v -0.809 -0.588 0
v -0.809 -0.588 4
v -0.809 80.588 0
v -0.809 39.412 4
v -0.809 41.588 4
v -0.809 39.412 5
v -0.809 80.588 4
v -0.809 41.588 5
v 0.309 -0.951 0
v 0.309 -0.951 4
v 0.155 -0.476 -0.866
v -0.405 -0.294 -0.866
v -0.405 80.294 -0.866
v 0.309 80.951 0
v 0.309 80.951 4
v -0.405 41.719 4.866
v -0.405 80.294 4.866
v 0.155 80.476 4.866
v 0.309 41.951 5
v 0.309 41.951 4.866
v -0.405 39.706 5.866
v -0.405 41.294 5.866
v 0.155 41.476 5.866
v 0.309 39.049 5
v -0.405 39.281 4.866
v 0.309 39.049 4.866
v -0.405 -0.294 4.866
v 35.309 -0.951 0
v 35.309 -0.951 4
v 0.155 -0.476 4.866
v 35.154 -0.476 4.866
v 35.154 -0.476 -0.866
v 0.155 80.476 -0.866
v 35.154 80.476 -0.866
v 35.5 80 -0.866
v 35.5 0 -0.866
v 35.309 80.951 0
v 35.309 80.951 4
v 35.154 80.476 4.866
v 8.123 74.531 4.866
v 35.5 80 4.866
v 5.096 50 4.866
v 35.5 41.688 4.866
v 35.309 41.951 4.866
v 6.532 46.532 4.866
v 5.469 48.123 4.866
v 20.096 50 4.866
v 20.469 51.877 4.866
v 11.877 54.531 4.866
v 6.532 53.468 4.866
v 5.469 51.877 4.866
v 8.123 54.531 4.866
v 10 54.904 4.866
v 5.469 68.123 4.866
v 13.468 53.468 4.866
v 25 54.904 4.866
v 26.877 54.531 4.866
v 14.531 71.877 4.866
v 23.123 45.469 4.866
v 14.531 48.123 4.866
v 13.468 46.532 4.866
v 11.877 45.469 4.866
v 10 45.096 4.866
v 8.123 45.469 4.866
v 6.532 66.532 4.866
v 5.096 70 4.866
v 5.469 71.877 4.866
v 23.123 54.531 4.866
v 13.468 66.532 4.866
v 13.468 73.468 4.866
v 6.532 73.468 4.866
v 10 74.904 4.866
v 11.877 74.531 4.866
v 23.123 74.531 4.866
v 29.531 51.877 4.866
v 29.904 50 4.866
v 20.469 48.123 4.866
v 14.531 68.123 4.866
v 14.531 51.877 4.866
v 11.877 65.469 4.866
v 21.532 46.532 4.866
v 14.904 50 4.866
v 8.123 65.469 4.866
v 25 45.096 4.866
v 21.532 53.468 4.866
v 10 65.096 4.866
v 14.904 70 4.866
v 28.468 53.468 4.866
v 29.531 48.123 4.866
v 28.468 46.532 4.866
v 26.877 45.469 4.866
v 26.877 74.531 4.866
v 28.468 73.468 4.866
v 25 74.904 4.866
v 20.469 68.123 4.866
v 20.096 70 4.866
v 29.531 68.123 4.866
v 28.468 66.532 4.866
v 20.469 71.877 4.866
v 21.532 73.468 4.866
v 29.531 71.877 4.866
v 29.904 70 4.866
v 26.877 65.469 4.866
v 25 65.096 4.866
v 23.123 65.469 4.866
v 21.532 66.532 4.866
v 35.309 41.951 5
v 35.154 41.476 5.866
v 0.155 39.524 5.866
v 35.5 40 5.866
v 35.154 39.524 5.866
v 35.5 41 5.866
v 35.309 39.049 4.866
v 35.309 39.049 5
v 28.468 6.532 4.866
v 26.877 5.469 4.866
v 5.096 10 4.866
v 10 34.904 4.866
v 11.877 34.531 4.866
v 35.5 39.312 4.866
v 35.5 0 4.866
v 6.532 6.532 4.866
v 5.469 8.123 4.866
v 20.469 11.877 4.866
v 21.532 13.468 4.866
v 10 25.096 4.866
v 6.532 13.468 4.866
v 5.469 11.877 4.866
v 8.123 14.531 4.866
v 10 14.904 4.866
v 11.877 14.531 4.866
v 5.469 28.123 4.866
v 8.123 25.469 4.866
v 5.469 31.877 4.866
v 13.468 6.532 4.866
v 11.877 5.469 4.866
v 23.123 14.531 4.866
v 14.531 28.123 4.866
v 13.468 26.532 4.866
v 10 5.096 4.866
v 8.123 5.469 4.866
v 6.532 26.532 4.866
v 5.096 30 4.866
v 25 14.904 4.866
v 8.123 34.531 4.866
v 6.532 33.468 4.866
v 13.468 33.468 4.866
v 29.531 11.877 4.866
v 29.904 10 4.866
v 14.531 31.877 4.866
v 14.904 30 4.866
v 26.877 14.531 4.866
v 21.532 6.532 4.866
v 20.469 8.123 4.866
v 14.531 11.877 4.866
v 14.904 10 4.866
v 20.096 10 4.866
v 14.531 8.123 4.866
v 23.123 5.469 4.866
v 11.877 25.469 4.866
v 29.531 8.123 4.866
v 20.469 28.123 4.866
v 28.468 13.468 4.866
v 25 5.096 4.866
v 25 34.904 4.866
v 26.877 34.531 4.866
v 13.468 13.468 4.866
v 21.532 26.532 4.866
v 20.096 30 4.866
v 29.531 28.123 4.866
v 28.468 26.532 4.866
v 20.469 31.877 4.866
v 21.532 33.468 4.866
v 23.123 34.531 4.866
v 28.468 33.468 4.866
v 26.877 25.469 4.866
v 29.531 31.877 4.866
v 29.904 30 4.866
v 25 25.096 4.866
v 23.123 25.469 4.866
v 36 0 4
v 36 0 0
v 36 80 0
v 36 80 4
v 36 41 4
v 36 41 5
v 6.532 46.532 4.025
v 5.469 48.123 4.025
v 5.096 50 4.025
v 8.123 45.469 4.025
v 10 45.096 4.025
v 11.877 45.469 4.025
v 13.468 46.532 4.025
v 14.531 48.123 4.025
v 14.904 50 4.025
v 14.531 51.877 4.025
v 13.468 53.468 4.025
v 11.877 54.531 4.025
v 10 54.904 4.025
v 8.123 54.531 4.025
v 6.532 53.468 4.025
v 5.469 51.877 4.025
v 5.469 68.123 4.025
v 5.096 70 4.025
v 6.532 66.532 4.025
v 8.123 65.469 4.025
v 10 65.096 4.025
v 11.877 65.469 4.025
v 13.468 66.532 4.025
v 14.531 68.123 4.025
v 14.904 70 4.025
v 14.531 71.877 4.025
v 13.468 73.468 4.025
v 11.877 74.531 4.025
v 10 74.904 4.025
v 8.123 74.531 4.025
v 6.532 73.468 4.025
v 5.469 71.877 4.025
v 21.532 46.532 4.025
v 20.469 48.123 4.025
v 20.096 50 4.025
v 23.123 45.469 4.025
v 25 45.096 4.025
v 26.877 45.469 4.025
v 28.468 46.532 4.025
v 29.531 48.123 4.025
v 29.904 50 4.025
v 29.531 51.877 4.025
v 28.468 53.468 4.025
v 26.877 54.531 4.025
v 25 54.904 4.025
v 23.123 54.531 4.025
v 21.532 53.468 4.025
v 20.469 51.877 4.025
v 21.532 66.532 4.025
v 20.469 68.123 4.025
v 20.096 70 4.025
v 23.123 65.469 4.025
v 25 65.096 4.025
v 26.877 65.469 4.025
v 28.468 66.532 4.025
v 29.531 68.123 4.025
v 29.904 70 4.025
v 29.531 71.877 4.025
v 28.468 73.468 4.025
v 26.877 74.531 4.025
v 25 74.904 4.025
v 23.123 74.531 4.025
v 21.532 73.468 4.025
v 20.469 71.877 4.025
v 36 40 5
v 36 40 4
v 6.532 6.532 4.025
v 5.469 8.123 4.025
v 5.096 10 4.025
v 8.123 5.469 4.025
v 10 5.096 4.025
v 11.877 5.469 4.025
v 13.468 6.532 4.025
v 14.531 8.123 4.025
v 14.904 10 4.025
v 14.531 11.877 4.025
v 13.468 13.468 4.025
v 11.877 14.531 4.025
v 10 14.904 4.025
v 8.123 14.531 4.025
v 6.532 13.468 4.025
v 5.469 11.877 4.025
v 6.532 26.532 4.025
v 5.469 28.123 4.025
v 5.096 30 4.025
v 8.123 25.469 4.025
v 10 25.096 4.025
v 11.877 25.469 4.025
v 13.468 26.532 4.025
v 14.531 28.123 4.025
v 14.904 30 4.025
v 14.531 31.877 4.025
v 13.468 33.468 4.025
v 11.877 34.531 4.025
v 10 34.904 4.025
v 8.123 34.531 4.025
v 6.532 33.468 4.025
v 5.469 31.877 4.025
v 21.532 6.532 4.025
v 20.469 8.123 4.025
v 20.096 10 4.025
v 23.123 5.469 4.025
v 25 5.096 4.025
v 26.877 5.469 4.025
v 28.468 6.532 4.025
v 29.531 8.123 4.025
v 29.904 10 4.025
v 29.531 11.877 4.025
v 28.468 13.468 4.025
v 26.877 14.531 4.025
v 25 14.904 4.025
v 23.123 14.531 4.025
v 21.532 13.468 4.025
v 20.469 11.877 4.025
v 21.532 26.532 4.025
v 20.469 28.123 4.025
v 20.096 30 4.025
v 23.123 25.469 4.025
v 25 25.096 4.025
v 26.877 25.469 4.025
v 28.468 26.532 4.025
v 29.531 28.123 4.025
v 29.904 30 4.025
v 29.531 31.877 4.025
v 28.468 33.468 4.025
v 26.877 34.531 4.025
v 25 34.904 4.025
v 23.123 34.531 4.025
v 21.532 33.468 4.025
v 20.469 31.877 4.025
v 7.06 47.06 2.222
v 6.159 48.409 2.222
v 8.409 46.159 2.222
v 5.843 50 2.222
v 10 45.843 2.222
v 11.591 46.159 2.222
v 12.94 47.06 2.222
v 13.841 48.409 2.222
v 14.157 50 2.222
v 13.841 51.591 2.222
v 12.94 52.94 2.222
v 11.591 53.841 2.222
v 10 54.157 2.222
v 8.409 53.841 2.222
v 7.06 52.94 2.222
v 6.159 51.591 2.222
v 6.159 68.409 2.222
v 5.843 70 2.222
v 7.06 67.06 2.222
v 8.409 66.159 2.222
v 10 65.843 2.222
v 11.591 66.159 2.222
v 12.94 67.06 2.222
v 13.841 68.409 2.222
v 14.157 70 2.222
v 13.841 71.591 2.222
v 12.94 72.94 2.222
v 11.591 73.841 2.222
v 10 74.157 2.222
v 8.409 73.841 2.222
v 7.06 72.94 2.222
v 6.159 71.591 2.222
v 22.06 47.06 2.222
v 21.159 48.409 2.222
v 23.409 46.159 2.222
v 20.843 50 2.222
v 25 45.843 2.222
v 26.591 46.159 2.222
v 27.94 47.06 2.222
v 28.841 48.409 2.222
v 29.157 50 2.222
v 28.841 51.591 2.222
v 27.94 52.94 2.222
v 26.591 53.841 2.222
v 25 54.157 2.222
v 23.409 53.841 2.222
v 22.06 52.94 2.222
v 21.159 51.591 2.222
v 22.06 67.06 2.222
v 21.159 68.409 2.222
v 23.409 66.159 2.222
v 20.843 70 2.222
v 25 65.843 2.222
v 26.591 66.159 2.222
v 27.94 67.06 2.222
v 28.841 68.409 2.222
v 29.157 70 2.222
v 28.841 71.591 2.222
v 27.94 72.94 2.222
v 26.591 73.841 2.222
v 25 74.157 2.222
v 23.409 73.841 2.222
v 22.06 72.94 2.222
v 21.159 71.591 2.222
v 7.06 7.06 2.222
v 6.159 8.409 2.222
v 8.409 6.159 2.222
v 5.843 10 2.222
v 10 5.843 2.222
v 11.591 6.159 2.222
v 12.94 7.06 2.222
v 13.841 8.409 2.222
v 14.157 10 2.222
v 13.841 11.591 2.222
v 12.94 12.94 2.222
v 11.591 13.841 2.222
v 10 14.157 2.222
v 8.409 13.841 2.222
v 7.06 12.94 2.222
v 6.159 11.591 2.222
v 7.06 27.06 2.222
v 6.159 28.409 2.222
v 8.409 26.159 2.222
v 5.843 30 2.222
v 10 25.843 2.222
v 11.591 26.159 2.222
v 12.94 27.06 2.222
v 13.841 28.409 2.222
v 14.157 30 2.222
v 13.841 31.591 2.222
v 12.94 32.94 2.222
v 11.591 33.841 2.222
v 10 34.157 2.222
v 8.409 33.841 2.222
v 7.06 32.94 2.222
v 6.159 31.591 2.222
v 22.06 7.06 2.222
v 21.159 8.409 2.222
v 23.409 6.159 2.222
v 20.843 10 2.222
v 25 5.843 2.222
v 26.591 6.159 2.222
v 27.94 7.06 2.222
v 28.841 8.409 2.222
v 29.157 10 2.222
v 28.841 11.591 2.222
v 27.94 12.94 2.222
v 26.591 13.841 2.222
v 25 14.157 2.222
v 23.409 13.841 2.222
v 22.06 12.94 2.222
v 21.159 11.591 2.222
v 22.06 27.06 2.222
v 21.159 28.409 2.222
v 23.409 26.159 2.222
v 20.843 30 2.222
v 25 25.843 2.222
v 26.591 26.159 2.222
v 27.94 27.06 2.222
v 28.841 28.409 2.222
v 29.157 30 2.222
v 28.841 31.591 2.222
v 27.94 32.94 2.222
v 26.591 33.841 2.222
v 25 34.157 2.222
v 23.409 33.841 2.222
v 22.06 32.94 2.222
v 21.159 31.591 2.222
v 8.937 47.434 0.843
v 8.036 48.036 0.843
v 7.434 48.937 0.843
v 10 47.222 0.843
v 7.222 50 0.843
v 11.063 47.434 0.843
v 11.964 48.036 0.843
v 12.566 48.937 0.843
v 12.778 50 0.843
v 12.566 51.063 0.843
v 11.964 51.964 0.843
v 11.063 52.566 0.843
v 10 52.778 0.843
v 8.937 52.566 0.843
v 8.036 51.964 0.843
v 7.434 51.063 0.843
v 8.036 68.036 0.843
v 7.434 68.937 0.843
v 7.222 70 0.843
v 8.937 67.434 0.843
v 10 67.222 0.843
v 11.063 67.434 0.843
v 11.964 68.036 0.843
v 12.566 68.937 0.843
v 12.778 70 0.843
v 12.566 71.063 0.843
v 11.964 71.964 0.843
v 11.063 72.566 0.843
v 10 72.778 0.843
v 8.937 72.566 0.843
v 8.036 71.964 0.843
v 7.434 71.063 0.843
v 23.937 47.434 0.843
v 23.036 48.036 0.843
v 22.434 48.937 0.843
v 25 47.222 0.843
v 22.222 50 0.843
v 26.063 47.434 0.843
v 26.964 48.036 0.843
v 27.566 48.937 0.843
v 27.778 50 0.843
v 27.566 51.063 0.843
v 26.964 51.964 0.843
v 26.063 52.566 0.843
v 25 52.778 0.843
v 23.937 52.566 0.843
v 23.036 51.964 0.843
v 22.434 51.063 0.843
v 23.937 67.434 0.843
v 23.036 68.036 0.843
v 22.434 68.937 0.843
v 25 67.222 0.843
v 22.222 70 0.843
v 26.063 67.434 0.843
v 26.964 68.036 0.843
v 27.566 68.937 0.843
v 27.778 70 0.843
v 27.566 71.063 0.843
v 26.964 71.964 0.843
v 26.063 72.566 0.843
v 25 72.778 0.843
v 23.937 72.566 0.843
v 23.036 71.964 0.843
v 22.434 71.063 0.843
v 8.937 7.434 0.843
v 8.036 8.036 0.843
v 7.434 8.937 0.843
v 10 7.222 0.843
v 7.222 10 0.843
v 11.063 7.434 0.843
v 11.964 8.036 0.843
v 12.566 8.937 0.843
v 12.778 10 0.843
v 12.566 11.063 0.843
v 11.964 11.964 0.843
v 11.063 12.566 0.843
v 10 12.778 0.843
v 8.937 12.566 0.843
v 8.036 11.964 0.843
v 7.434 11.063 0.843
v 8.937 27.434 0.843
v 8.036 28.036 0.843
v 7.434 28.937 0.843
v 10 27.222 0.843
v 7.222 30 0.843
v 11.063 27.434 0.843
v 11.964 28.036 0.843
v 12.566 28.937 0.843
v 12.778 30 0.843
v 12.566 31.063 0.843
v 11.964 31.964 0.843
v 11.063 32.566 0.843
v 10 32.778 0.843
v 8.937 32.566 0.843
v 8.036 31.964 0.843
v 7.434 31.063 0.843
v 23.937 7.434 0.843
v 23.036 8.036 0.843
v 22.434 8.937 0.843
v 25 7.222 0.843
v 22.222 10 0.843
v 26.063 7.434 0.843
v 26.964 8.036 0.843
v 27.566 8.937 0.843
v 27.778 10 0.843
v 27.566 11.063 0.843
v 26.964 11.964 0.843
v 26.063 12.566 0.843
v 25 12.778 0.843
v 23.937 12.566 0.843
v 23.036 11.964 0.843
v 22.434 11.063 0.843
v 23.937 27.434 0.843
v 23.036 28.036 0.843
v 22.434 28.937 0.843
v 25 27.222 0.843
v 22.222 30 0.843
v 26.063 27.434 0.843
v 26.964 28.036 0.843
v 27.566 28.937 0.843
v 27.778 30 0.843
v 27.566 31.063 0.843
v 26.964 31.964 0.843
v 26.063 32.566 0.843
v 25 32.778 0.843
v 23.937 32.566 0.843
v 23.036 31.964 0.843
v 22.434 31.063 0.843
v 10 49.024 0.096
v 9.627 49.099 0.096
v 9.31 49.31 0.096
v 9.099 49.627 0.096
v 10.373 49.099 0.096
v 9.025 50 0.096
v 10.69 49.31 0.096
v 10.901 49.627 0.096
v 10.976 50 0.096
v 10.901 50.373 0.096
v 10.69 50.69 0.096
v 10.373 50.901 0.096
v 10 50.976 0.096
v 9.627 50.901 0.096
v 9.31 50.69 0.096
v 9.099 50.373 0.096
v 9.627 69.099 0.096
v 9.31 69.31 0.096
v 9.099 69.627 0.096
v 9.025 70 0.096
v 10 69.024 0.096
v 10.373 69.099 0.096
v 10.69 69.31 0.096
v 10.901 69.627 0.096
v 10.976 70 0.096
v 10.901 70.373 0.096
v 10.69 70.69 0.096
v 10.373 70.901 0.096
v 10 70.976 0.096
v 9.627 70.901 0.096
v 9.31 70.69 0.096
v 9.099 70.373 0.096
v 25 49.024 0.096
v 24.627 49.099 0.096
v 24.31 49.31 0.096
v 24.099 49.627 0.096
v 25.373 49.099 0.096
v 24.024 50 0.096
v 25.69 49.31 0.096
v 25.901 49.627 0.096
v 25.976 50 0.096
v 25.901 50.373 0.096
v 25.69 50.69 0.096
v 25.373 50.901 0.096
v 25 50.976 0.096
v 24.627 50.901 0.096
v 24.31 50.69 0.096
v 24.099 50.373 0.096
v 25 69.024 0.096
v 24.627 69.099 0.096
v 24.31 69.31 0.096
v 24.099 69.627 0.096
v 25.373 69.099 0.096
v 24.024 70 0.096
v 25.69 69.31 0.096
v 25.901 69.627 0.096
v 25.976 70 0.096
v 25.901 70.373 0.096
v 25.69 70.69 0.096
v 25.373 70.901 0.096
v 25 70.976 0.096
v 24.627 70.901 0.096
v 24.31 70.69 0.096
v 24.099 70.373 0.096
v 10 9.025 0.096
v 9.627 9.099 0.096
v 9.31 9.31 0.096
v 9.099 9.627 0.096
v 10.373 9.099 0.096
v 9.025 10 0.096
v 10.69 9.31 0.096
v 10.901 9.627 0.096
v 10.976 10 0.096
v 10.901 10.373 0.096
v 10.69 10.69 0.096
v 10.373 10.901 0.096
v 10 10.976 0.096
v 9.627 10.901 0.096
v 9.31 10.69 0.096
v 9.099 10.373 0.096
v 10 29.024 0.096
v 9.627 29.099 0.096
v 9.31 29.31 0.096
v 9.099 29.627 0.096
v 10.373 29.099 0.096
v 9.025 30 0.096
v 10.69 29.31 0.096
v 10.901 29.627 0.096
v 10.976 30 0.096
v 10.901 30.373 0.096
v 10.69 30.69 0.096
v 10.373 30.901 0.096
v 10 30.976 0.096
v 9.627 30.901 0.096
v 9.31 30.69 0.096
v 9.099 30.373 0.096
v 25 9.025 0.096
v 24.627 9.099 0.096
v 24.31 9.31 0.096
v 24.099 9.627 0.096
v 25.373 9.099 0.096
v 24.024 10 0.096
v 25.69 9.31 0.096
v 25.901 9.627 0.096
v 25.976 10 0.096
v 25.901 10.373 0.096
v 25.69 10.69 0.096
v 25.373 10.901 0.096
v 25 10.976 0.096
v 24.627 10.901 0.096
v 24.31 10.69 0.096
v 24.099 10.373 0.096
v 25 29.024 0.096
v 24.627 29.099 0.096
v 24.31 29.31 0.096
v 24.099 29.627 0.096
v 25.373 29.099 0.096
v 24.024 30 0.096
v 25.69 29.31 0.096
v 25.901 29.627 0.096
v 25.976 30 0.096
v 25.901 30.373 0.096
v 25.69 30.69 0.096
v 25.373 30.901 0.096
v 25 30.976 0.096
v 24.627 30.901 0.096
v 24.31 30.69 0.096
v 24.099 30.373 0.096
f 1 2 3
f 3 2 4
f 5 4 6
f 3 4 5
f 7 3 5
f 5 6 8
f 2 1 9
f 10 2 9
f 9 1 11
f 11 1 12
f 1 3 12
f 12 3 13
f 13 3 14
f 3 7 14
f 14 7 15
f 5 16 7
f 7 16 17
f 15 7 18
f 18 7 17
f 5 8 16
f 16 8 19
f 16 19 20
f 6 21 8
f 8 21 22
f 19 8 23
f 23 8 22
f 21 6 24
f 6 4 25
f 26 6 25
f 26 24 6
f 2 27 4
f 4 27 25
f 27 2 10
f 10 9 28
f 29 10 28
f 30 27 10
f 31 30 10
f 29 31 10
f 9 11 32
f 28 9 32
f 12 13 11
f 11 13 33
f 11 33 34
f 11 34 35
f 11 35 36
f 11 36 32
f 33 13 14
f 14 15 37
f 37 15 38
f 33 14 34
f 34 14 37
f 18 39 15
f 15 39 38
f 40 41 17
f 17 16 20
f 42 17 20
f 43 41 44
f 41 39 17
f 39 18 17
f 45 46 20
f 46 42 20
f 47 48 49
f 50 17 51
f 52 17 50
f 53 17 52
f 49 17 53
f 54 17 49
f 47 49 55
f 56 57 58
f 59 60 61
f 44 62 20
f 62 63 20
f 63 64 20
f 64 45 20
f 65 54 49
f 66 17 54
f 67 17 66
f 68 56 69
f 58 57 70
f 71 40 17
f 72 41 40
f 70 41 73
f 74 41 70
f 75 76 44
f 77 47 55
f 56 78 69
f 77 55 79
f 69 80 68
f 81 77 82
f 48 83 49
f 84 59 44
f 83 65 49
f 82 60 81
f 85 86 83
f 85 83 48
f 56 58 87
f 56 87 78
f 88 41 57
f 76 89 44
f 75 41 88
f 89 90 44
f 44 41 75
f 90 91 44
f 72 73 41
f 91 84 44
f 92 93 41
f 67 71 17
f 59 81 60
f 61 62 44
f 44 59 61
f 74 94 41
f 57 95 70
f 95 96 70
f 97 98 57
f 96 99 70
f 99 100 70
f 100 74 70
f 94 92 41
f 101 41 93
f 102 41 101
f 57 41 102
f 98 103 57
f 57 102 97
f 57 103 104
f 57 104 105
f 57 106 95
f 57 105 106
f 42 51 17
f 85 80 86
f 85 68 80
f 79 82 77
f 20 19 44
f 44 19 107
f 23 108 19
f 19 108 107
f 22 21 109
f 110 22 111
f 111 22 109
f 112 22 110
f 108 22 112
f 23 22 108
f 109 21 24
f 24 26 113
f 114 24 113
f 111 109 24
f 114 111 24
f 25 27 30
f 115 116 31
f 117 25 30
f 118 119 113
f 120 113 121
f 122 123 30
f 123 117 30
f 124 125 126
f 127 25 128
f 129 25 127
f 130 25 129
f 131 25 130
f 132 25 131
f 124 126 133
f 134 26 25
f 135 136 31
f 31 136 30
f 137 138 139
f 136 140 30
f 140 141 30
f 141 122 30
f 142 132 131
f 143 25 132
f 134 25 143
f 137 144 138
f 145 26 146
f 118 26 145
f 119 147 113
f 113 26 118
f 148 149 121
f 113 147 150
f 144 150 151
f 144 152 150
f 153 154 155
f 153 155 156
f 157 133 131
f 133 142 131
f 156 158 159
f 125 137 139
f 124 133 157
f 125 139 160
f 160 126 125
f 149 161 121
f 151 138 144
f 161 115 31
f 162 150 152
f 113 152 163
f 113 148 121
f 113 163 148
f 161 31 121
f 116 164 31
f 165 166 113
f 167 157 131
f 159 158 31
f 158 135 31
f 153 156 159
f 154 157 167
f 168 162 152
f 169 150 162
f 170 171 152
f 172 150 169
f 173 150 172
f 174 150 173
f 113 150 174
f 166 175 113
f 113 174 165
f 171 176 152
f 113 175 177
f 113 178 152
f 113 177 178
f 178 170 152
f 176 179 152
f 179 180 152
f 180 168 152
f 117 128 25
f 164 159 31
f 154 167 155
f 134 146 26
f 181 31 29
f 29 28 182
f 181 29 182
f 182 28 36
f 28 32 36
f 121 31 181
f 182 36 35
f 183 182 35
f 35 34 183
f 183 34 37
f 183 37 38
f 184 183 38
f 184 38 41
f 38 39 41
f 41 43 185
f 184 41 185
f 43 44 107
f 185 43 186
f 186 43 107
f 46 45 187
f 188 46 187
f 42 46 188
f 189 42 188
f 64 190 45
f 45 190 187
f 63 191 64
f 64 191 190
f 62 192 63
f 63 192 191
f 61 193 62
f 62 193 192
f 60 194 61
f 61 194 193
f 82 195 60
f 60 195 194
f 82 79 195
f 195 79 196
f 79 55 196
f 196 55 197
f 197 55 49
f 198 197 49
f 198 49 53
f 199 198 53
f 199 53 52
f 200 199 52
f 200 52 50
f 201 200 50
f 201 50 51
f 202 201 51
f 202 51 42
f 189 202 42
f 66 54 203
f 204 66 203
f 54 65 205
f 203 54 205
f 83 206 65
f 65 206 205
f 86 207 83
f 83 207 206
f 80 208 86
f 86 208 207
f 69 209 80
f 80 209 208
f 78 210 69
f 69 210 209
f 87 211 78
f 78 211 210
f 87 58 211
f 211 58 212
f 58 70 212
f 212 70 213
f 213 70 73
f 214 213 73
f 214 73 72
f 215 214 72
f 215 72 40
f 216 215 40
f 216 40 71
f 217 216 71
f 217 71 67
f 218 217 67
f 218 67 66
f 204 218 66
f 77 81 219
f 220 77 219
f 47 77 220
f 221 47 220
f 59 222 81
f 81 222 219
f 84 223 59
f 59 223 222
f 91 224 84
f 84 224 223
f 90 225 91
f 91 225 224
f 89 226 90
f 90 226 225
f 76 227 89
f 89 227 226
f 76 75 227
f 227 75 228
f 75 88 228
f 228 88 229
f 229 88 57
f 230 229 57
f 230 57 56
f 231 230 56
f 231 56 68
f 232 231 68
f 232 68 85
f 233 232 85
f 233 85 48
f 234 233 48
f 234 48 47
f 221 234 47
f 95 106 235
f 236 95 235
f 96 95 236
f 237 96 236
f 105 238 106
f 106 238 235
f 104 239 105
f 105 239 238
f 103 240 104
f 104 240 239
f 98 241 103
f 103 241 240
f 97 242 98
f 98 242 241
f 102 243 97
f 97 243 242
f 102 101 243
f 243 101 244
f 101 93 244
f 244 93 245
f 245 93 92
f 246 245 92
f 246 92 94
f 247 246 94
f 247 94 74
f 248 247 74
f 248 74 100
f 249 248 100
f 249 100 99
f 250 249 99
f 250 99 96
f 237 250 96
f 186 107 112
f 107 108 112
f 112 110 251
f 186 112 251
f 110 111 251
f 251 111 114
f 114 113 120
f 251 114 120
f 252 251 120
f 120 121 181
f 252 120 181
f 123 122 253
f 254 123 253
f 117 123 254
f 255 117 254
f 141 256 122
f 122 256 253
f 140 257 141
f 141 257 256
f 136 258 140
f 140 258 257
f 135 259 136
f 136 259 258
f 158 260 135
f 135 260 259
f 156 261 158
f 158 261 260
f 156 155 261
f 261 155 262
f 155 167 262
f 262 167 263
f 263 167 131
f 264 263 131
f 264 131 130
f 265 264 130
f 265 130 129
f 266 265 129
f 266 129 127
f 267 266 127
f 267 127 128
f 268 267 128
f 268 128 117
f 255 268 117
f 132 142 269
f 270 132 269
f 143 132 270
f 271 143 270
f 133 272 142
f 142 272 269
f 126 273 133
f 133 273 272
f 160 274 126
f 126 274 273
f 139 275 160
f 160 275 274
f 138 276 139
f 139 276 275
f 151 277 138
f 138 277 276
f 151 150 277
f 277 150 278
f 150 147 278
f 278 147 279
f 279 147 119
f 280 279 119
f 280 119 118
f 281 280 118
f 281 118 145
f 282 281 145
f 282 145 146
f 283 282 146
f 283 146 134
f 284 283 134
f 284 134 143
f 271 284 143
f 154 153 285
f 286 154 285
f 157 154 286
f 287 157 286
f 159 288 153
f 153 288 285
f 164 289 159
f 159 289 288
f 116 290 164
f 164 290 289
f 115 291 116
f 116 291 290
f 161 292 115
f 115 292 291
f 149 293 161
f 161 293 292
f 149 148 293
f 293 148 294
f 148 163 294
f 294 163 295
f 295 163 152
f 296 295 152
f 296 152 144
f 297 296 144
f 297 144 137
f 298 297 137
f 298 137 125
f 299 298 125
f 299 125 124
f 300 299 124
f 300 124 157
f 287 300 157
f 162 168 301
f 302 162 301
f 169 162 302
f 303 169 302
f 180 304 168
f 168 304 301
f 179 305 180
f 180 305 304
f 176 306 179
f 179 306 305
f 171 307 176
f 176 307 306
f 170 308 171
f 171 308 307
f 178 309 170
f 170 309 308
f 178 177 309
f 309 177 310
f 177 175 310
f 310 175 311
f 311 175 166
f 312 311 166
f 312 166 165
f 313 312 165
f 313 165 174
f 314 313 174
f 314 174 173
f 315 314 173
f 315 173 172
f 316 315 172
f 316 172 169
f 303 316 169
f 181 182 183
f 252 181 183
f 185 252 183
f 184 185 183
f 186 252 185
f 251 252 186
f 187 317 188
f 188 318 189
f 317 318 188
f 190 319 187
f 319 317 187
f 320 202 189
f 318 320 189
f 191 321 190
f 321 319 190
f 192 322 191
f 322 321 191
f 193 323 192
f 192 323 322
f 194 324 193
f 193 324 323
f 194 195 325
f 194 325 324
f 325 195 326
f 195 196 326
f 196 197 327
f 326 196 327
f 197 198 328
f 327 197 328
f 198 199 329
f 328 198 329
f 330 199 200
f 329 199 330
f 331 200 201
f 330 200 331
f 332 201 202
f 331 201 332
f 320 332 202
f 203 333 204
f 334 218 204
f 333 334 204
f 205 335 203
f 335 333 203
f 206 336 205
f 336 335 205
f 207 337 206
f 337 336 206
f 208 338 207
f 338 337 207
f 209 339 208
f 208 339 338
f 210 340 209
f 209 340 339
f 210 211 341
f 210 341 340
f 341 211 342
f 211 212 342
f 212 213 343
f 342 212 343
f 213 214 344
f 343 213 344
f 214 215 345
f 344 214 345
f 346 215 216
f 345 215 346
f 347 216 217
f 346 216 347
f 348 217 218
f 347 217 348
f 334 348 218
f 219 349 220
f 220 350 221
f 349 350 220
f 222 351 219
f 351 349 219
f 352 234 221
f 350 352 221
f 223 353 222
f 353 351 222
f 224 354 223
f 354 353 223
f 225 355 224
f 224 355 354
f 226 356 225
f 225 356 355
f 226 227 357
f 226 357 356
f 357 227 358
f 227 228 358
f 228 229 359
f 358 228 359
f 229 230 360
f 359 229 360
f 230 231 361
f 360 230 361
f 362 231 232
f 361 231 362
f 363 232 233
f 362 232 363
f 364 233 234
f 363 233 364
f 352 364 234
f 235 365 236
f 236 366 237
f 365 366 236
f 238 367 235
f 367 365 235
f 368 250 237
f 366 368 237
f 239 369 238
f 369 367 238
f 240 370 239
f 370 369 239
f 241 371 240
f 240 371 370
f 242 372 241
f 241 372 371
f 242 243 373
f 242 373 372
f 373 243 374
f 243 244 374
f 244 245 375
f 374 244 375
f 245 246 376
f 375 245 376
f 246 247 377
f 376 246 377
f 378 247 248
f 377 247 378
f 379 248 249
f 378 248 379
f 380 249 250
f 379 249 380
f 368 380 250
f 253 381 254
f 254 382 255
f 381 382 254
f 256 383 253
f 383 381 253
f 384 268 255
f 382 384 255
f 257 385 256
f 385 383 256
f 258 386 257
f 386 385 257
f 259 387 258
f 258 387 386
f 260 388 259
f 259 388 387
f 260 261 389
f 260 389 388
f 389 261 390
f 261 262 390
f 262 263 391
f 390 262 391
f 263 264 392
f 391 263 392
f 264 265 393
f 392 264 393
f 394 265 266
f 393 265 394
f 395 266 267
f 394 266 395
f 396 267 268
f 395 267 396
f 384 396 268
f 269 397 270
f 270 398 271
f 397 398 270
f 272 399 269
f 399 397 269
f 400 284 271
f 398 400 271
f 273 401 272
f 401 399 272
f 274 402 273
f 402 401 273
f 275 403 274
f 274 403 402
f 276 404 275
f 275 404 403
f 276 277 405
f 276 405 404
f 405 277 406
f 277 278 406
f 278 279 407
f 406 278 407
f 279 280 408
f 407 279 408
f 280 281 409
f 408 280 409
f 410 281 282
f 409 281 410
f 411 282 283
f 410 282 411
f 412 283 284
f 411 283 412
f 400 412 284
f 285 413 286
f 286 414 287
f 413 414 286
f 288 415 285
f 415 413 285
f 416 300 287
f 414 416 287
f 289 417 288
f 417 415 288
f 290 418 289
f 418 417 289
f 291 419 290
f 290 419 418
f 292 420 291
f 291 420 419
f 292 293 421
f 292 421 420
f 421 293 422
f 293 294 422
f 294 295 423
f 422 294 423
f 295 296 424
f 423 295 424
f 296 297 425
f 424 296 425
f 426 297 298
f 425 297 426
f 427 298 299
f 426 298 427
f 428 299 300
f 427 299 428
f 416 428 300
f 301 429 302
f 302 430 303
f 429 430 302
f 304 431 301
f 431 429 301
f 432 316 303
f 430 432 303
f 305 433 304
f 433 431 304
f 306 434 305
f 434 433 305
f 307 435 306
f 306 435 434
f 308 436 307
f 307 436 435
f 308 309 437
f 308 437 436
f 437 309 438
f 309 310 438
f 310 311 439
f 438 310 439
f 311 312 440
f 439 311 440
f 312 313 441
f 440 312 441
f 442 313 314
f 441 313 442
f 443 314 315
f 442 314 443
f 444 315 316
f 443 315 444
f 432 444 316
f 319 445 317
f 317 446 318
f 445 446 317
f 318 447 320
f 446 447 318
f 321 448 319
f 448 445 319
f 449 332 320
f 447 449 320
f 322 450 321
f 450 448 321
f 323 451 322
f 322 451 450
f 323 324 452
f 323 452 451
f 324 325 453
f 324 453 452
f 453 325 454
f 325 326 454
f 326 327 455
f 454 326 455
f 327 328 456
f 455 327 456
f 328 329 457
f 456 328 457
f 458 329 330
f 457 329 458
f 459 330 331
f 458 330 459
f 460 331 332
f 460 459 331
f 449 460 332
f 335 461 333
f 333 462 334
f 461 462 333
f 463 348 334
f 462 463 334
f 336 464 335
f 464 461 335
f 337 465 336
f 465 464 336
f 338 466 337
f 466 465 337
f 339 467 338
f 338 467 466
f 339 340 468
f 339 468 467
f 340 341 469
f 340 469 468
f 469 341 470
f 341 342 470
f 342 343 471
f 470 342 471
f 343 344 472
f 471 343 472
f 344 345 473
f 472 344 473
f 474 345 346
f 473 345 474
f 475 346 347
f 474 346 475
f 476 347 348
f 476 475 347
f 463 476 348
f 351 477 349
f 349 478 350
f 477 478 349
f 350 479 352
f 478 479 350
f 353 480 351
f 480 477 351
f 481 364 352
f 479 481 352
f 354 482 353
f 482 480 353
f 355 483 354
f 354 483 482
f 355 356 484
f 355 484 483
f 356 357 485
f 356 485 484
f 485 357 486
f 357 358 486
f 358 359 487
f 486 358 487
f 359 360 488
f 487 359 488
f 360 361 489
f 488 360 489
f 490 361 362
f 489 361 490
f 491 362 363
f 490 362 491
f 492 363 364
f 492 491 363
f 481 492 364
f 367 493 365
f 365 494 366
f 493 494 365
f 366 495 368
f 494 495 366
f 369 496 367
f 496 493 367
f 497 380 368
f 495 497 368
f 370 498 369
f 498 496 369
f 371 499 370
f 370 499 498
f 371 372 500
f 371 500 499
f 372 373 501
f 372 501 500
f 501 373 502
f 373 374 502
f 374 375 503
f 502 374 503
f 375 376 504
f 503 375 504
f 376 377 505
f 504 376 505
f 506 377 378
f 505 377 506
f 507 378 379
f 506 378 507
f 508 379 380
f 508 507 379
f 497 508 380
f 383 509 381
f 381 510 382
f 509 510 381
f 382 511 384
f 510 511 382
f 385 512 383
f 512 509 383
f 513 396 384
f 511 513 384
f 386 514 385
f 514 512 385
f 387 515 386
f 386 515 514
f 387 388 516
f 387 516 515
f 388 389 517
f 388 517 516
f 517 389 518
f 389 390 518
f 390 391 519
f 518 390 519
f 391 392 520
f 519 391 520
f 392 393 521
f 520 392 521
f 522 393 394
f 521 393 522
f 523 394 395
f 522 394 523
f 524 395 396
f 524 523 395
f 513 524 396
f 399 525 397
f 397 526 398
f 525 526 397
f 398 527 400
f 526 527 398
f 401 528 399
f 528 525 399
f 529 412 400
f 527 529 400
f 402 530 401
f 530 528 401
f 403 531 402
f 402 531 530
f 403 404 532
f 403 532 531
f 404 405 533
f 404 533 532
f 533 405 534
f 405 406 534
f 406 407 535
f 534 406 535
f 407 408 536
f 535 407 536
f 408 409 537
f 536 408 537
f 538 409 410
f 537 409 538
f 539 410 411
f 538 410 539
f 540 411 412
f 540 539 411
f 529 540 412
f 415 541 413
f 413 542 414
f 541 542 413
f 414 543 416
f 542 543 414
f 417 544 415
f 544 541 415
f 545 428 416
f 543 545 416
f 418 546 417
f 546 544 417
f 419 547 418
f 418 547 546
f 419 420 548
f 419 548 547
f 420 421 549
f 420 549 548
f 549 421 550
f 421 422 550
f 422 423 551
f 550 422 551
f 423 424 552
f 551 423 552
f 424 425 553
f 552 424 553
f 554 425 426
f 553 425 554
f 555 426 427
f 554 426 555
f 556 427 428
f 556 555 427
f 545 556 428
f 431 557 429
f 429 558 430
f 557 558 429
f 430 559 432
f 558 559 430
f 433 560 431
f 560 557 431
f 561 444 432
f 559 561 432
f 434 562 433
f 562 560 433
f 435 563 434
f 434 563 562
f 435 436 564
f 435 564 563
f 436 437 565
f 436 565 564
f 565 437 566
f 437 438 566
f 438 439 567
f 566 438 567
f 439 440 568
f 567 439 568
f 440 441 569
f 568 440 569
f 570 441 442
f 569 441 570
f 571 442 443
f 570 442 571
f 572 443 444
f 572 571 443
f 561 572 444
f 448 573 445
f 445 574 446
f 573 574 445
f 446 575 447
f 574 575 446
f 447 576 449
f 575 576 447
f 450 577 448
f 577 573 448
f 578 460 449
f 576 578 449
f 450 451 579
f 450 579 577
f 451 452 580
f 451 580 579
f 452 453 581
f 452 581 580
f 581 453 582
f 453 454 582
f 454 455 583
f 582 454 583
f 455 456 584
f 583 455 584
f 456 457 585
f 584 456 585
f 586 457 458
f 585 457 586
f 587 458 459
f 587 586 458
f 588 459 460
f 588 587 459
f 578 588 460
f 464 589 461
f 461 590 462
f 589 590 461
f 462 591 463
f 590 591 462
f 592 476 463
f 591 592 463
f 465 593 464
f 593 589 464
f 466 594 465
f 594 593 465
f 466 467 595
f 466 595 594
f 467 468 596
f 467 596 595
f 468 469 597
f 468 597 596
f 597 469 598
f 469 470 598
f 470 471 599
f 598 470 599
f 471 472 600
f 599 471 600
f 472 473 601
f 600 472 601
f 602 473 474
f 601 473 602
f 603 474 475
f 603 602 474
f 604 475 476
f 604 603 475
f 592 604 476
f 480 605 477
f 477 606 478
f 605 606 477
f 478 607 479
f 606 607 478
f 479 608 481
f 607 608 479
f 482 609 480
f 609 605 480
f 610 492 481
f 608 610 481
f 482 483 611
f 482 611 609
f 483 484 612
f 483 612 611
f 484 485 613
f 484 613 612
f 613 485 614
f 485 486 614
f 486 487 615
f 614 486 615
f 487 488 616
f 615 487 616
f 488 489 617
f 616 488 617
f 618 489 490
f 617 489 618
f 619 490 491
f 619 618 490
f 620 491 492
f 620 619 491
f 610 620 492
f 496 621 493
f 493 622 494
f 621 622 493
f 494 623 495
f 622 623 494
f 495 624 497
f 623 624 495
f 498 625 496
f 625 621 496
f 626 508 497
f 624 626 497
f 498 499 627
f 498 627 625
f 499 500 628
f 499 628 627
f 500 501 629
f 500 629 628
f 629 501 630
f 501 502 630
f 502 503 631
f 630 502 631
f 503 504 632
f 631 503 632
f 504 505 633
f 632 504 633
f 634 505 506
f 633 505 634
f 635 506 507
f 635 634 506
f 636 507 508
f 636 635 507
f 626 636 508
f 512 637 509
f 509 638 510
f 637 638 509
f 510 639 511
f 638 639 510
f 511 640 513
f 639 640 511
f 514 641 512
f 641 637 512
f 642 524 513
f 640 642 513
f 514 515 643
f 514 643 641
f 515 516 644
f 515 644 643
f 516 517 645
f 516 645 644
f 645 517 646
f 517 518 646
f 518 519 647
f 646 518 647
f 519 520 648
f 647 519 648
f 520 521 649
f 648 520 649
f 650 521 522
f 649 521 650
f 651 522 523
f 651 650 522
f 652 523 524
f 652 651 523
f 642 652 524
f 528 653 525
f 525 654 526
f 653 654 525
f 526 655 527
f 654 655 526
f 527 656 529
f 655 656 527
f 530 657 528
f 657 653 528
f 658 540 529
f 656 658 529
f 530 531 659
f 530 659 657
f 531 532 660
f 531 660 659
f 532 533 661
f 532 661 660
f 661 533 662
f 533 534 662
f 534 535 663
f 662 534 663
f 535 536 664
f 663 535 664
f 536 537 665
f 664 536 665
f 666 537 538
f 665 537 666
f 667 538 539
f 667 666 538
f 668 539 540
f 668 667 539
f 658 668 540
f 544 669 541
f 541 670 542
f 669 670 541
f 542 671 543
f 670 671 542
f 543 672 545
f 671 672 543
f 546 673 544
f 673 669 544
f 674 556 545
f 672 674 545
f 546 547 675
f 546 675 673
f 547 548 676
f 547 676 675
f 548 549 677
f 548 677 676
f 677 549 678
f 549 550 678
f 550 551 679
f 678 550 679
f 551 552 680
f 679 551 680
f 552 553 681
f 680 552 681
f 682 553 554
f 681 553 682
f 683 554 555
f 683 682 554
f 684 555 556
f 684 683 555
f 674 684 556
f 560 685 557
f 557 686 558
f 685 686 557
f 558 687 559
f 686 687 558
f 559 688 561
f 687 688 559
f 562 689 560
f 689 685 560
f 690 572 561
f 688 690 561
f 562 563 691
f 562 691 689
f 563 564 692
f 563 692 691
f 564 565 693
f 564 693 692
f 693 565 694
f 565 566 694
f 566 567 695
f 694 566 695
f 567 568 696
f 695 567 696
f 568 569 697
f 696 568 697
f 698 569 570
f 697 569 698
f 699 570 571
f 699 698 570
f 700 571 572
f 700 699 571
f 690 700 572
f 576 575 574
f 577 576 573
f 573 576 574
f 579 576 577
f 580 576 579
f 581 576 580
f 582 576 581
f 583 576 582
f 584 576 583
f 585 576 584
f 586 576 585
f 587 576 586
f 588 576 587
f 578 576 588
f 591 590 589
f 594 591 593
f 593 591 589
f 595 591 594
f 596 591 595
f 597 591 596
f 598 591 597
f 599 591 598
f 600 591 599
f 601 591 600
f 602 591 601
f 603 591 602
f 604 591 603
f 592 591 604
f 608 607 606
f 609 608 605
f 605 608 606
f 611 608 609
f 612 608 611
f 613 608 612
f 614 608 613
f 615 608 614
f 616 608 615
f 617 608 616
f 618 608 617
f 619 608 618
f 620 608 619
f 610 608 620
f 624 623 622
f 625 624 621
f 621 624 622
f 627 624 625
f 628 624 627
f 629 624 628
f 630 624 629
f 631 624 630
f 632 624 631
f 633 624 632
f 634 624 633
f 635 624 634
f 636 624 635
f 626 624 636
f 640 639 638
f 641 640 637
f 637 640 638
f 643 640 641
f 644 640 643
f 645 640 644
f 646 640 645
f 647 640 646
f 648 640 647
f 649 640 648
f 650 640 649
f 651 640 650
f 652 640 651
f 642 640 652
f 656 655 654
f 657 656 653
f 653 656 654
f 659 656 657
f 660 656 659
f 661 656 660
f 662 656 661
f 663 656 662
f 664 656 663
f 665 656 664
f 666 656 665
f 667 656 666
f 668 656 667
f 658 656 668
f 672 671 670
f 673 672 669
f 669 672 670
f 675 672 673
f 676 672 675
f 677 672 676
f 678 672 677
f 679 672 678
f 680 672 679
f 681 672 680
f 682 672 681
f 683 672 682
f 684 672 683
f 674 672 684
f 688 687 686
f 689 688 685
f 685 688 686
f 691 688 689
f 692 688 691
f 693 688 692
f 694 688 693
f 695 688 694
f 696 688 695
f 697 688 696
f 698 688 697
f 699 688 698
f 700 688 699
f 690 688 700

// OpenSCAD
// Loguncov Maxim 13.12.13

//$fn=128;


translate([0,40,0])
minkowski()
{cube([35,1,5]);
sphere(1);
}

difference() {

//основа
minkowski()
{cube([35,80,4]);
sphere(1);
}

//отверстия
translate([10,70,5])sphere(5);
translate([25,50,5])sphere(5);
translate([25,70,5])sphere(5);
translate([10,50,5])sphere(5);


translate([10,10,5])sphere(5);
translate([25,30,5])sphere(5);
translate([25,10,5])sphere(5);
translate([10,30,5])sphere(5);

}
